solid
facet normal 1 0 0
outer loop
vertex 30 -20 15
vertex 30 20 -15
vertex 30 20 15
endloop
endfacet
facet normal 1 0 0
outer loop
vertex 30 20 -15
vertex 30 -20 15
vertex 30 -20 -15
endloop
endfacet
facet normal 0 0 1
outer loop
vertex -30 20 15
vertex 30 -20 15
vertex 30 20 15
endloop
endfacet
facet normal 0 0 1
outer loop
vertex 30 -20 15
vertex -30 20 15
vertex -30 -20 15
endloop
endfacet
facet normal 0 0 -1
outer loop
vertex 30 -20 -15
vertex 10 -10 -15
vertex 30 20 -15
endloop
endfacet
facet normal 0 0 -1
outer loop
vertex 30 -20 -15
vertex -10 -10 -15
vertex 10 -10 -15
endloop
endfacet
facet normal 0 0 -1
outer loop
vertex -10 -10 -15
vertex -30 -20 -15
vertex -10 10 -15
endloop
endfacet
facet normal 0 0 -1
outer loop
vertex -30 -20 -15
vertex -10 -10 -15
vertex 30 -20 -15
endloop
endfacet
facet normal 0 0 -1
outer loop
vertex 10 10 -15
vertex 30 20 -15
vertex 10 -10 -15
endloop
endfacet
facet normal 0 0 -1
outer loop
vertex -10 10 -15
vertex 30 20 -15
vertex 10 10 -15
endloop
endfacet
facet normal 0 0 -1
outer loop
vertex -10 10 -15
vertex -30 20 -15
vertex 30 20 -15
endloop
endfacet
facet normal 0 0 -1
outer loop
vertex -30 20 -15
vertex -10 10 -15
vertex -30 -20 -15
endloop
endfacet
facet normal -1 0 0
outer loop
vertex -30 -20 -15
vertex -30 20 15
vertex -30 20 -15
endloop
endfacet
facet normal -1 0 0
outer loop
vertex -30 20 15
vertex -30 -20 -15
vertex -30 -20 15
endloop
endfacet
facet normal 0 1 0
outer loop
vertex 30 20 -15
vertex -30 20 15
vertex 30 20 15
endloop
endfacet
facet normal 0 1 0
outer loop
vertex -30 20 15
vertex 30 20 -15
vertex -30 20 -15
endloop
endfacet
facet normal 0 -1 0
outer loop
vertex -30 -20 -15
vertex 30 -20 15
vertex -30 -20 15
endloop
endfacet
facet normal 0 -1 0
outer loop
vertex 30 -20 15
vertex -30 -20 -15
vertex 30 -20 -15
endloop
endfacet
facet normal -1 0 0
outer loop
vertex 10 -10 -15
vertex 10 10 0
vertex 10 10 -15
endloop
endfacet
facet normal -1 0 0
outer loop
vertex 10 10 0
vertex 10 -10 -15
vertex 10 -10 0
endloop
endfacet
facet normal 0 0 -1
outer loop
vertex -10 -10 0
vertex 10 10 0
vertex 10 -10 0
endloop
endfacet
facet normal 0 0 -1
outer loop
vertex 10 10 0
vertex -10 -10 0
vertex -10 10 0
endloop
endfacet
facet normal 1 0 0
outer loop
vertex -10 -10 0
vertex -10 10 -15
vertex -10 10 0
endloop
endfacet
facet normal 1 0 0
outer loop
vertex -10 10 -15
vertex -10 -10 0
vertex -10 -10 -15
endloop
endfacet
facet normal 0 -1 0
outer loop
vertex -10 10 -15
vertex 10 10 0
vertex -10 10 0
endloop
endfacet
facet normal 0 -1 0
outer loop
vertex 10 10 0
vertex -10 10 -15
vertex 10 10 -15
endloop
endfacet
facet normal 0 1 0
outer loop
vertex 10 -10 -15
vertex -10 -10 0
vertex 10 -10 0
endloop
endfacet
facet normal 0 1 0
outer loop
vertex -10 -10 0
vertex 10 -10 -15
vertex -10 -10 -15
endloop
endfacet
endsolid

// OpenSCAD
// Dimensions for the base block
base_length = 60;  // Length of the block
base_width = 40;   // Width of the block
base_height = 30;  // Height of the block

// Dimensions for the U-shaped cutout
cutout_width = 20;  // Width of the cutout
cutout_height = 15; // Height of the cutout
cutout_depth = 20;  // Depth of the cutout

// Main module to create the base block with the U-shaped cutout
module base_block() {
    // Create the main rectangular block
    difference() {
        cube([base_length, base_width, base_height], center = true);
        
        // Create the U-shaped cutout
        translate([-cutout_depth / 2, -cutout_width / 2, -base_height / 2])
            cube([cutout_depth, cutout_width, cutout_height], center = false);
    }
}

// Render the base block
base_block();
